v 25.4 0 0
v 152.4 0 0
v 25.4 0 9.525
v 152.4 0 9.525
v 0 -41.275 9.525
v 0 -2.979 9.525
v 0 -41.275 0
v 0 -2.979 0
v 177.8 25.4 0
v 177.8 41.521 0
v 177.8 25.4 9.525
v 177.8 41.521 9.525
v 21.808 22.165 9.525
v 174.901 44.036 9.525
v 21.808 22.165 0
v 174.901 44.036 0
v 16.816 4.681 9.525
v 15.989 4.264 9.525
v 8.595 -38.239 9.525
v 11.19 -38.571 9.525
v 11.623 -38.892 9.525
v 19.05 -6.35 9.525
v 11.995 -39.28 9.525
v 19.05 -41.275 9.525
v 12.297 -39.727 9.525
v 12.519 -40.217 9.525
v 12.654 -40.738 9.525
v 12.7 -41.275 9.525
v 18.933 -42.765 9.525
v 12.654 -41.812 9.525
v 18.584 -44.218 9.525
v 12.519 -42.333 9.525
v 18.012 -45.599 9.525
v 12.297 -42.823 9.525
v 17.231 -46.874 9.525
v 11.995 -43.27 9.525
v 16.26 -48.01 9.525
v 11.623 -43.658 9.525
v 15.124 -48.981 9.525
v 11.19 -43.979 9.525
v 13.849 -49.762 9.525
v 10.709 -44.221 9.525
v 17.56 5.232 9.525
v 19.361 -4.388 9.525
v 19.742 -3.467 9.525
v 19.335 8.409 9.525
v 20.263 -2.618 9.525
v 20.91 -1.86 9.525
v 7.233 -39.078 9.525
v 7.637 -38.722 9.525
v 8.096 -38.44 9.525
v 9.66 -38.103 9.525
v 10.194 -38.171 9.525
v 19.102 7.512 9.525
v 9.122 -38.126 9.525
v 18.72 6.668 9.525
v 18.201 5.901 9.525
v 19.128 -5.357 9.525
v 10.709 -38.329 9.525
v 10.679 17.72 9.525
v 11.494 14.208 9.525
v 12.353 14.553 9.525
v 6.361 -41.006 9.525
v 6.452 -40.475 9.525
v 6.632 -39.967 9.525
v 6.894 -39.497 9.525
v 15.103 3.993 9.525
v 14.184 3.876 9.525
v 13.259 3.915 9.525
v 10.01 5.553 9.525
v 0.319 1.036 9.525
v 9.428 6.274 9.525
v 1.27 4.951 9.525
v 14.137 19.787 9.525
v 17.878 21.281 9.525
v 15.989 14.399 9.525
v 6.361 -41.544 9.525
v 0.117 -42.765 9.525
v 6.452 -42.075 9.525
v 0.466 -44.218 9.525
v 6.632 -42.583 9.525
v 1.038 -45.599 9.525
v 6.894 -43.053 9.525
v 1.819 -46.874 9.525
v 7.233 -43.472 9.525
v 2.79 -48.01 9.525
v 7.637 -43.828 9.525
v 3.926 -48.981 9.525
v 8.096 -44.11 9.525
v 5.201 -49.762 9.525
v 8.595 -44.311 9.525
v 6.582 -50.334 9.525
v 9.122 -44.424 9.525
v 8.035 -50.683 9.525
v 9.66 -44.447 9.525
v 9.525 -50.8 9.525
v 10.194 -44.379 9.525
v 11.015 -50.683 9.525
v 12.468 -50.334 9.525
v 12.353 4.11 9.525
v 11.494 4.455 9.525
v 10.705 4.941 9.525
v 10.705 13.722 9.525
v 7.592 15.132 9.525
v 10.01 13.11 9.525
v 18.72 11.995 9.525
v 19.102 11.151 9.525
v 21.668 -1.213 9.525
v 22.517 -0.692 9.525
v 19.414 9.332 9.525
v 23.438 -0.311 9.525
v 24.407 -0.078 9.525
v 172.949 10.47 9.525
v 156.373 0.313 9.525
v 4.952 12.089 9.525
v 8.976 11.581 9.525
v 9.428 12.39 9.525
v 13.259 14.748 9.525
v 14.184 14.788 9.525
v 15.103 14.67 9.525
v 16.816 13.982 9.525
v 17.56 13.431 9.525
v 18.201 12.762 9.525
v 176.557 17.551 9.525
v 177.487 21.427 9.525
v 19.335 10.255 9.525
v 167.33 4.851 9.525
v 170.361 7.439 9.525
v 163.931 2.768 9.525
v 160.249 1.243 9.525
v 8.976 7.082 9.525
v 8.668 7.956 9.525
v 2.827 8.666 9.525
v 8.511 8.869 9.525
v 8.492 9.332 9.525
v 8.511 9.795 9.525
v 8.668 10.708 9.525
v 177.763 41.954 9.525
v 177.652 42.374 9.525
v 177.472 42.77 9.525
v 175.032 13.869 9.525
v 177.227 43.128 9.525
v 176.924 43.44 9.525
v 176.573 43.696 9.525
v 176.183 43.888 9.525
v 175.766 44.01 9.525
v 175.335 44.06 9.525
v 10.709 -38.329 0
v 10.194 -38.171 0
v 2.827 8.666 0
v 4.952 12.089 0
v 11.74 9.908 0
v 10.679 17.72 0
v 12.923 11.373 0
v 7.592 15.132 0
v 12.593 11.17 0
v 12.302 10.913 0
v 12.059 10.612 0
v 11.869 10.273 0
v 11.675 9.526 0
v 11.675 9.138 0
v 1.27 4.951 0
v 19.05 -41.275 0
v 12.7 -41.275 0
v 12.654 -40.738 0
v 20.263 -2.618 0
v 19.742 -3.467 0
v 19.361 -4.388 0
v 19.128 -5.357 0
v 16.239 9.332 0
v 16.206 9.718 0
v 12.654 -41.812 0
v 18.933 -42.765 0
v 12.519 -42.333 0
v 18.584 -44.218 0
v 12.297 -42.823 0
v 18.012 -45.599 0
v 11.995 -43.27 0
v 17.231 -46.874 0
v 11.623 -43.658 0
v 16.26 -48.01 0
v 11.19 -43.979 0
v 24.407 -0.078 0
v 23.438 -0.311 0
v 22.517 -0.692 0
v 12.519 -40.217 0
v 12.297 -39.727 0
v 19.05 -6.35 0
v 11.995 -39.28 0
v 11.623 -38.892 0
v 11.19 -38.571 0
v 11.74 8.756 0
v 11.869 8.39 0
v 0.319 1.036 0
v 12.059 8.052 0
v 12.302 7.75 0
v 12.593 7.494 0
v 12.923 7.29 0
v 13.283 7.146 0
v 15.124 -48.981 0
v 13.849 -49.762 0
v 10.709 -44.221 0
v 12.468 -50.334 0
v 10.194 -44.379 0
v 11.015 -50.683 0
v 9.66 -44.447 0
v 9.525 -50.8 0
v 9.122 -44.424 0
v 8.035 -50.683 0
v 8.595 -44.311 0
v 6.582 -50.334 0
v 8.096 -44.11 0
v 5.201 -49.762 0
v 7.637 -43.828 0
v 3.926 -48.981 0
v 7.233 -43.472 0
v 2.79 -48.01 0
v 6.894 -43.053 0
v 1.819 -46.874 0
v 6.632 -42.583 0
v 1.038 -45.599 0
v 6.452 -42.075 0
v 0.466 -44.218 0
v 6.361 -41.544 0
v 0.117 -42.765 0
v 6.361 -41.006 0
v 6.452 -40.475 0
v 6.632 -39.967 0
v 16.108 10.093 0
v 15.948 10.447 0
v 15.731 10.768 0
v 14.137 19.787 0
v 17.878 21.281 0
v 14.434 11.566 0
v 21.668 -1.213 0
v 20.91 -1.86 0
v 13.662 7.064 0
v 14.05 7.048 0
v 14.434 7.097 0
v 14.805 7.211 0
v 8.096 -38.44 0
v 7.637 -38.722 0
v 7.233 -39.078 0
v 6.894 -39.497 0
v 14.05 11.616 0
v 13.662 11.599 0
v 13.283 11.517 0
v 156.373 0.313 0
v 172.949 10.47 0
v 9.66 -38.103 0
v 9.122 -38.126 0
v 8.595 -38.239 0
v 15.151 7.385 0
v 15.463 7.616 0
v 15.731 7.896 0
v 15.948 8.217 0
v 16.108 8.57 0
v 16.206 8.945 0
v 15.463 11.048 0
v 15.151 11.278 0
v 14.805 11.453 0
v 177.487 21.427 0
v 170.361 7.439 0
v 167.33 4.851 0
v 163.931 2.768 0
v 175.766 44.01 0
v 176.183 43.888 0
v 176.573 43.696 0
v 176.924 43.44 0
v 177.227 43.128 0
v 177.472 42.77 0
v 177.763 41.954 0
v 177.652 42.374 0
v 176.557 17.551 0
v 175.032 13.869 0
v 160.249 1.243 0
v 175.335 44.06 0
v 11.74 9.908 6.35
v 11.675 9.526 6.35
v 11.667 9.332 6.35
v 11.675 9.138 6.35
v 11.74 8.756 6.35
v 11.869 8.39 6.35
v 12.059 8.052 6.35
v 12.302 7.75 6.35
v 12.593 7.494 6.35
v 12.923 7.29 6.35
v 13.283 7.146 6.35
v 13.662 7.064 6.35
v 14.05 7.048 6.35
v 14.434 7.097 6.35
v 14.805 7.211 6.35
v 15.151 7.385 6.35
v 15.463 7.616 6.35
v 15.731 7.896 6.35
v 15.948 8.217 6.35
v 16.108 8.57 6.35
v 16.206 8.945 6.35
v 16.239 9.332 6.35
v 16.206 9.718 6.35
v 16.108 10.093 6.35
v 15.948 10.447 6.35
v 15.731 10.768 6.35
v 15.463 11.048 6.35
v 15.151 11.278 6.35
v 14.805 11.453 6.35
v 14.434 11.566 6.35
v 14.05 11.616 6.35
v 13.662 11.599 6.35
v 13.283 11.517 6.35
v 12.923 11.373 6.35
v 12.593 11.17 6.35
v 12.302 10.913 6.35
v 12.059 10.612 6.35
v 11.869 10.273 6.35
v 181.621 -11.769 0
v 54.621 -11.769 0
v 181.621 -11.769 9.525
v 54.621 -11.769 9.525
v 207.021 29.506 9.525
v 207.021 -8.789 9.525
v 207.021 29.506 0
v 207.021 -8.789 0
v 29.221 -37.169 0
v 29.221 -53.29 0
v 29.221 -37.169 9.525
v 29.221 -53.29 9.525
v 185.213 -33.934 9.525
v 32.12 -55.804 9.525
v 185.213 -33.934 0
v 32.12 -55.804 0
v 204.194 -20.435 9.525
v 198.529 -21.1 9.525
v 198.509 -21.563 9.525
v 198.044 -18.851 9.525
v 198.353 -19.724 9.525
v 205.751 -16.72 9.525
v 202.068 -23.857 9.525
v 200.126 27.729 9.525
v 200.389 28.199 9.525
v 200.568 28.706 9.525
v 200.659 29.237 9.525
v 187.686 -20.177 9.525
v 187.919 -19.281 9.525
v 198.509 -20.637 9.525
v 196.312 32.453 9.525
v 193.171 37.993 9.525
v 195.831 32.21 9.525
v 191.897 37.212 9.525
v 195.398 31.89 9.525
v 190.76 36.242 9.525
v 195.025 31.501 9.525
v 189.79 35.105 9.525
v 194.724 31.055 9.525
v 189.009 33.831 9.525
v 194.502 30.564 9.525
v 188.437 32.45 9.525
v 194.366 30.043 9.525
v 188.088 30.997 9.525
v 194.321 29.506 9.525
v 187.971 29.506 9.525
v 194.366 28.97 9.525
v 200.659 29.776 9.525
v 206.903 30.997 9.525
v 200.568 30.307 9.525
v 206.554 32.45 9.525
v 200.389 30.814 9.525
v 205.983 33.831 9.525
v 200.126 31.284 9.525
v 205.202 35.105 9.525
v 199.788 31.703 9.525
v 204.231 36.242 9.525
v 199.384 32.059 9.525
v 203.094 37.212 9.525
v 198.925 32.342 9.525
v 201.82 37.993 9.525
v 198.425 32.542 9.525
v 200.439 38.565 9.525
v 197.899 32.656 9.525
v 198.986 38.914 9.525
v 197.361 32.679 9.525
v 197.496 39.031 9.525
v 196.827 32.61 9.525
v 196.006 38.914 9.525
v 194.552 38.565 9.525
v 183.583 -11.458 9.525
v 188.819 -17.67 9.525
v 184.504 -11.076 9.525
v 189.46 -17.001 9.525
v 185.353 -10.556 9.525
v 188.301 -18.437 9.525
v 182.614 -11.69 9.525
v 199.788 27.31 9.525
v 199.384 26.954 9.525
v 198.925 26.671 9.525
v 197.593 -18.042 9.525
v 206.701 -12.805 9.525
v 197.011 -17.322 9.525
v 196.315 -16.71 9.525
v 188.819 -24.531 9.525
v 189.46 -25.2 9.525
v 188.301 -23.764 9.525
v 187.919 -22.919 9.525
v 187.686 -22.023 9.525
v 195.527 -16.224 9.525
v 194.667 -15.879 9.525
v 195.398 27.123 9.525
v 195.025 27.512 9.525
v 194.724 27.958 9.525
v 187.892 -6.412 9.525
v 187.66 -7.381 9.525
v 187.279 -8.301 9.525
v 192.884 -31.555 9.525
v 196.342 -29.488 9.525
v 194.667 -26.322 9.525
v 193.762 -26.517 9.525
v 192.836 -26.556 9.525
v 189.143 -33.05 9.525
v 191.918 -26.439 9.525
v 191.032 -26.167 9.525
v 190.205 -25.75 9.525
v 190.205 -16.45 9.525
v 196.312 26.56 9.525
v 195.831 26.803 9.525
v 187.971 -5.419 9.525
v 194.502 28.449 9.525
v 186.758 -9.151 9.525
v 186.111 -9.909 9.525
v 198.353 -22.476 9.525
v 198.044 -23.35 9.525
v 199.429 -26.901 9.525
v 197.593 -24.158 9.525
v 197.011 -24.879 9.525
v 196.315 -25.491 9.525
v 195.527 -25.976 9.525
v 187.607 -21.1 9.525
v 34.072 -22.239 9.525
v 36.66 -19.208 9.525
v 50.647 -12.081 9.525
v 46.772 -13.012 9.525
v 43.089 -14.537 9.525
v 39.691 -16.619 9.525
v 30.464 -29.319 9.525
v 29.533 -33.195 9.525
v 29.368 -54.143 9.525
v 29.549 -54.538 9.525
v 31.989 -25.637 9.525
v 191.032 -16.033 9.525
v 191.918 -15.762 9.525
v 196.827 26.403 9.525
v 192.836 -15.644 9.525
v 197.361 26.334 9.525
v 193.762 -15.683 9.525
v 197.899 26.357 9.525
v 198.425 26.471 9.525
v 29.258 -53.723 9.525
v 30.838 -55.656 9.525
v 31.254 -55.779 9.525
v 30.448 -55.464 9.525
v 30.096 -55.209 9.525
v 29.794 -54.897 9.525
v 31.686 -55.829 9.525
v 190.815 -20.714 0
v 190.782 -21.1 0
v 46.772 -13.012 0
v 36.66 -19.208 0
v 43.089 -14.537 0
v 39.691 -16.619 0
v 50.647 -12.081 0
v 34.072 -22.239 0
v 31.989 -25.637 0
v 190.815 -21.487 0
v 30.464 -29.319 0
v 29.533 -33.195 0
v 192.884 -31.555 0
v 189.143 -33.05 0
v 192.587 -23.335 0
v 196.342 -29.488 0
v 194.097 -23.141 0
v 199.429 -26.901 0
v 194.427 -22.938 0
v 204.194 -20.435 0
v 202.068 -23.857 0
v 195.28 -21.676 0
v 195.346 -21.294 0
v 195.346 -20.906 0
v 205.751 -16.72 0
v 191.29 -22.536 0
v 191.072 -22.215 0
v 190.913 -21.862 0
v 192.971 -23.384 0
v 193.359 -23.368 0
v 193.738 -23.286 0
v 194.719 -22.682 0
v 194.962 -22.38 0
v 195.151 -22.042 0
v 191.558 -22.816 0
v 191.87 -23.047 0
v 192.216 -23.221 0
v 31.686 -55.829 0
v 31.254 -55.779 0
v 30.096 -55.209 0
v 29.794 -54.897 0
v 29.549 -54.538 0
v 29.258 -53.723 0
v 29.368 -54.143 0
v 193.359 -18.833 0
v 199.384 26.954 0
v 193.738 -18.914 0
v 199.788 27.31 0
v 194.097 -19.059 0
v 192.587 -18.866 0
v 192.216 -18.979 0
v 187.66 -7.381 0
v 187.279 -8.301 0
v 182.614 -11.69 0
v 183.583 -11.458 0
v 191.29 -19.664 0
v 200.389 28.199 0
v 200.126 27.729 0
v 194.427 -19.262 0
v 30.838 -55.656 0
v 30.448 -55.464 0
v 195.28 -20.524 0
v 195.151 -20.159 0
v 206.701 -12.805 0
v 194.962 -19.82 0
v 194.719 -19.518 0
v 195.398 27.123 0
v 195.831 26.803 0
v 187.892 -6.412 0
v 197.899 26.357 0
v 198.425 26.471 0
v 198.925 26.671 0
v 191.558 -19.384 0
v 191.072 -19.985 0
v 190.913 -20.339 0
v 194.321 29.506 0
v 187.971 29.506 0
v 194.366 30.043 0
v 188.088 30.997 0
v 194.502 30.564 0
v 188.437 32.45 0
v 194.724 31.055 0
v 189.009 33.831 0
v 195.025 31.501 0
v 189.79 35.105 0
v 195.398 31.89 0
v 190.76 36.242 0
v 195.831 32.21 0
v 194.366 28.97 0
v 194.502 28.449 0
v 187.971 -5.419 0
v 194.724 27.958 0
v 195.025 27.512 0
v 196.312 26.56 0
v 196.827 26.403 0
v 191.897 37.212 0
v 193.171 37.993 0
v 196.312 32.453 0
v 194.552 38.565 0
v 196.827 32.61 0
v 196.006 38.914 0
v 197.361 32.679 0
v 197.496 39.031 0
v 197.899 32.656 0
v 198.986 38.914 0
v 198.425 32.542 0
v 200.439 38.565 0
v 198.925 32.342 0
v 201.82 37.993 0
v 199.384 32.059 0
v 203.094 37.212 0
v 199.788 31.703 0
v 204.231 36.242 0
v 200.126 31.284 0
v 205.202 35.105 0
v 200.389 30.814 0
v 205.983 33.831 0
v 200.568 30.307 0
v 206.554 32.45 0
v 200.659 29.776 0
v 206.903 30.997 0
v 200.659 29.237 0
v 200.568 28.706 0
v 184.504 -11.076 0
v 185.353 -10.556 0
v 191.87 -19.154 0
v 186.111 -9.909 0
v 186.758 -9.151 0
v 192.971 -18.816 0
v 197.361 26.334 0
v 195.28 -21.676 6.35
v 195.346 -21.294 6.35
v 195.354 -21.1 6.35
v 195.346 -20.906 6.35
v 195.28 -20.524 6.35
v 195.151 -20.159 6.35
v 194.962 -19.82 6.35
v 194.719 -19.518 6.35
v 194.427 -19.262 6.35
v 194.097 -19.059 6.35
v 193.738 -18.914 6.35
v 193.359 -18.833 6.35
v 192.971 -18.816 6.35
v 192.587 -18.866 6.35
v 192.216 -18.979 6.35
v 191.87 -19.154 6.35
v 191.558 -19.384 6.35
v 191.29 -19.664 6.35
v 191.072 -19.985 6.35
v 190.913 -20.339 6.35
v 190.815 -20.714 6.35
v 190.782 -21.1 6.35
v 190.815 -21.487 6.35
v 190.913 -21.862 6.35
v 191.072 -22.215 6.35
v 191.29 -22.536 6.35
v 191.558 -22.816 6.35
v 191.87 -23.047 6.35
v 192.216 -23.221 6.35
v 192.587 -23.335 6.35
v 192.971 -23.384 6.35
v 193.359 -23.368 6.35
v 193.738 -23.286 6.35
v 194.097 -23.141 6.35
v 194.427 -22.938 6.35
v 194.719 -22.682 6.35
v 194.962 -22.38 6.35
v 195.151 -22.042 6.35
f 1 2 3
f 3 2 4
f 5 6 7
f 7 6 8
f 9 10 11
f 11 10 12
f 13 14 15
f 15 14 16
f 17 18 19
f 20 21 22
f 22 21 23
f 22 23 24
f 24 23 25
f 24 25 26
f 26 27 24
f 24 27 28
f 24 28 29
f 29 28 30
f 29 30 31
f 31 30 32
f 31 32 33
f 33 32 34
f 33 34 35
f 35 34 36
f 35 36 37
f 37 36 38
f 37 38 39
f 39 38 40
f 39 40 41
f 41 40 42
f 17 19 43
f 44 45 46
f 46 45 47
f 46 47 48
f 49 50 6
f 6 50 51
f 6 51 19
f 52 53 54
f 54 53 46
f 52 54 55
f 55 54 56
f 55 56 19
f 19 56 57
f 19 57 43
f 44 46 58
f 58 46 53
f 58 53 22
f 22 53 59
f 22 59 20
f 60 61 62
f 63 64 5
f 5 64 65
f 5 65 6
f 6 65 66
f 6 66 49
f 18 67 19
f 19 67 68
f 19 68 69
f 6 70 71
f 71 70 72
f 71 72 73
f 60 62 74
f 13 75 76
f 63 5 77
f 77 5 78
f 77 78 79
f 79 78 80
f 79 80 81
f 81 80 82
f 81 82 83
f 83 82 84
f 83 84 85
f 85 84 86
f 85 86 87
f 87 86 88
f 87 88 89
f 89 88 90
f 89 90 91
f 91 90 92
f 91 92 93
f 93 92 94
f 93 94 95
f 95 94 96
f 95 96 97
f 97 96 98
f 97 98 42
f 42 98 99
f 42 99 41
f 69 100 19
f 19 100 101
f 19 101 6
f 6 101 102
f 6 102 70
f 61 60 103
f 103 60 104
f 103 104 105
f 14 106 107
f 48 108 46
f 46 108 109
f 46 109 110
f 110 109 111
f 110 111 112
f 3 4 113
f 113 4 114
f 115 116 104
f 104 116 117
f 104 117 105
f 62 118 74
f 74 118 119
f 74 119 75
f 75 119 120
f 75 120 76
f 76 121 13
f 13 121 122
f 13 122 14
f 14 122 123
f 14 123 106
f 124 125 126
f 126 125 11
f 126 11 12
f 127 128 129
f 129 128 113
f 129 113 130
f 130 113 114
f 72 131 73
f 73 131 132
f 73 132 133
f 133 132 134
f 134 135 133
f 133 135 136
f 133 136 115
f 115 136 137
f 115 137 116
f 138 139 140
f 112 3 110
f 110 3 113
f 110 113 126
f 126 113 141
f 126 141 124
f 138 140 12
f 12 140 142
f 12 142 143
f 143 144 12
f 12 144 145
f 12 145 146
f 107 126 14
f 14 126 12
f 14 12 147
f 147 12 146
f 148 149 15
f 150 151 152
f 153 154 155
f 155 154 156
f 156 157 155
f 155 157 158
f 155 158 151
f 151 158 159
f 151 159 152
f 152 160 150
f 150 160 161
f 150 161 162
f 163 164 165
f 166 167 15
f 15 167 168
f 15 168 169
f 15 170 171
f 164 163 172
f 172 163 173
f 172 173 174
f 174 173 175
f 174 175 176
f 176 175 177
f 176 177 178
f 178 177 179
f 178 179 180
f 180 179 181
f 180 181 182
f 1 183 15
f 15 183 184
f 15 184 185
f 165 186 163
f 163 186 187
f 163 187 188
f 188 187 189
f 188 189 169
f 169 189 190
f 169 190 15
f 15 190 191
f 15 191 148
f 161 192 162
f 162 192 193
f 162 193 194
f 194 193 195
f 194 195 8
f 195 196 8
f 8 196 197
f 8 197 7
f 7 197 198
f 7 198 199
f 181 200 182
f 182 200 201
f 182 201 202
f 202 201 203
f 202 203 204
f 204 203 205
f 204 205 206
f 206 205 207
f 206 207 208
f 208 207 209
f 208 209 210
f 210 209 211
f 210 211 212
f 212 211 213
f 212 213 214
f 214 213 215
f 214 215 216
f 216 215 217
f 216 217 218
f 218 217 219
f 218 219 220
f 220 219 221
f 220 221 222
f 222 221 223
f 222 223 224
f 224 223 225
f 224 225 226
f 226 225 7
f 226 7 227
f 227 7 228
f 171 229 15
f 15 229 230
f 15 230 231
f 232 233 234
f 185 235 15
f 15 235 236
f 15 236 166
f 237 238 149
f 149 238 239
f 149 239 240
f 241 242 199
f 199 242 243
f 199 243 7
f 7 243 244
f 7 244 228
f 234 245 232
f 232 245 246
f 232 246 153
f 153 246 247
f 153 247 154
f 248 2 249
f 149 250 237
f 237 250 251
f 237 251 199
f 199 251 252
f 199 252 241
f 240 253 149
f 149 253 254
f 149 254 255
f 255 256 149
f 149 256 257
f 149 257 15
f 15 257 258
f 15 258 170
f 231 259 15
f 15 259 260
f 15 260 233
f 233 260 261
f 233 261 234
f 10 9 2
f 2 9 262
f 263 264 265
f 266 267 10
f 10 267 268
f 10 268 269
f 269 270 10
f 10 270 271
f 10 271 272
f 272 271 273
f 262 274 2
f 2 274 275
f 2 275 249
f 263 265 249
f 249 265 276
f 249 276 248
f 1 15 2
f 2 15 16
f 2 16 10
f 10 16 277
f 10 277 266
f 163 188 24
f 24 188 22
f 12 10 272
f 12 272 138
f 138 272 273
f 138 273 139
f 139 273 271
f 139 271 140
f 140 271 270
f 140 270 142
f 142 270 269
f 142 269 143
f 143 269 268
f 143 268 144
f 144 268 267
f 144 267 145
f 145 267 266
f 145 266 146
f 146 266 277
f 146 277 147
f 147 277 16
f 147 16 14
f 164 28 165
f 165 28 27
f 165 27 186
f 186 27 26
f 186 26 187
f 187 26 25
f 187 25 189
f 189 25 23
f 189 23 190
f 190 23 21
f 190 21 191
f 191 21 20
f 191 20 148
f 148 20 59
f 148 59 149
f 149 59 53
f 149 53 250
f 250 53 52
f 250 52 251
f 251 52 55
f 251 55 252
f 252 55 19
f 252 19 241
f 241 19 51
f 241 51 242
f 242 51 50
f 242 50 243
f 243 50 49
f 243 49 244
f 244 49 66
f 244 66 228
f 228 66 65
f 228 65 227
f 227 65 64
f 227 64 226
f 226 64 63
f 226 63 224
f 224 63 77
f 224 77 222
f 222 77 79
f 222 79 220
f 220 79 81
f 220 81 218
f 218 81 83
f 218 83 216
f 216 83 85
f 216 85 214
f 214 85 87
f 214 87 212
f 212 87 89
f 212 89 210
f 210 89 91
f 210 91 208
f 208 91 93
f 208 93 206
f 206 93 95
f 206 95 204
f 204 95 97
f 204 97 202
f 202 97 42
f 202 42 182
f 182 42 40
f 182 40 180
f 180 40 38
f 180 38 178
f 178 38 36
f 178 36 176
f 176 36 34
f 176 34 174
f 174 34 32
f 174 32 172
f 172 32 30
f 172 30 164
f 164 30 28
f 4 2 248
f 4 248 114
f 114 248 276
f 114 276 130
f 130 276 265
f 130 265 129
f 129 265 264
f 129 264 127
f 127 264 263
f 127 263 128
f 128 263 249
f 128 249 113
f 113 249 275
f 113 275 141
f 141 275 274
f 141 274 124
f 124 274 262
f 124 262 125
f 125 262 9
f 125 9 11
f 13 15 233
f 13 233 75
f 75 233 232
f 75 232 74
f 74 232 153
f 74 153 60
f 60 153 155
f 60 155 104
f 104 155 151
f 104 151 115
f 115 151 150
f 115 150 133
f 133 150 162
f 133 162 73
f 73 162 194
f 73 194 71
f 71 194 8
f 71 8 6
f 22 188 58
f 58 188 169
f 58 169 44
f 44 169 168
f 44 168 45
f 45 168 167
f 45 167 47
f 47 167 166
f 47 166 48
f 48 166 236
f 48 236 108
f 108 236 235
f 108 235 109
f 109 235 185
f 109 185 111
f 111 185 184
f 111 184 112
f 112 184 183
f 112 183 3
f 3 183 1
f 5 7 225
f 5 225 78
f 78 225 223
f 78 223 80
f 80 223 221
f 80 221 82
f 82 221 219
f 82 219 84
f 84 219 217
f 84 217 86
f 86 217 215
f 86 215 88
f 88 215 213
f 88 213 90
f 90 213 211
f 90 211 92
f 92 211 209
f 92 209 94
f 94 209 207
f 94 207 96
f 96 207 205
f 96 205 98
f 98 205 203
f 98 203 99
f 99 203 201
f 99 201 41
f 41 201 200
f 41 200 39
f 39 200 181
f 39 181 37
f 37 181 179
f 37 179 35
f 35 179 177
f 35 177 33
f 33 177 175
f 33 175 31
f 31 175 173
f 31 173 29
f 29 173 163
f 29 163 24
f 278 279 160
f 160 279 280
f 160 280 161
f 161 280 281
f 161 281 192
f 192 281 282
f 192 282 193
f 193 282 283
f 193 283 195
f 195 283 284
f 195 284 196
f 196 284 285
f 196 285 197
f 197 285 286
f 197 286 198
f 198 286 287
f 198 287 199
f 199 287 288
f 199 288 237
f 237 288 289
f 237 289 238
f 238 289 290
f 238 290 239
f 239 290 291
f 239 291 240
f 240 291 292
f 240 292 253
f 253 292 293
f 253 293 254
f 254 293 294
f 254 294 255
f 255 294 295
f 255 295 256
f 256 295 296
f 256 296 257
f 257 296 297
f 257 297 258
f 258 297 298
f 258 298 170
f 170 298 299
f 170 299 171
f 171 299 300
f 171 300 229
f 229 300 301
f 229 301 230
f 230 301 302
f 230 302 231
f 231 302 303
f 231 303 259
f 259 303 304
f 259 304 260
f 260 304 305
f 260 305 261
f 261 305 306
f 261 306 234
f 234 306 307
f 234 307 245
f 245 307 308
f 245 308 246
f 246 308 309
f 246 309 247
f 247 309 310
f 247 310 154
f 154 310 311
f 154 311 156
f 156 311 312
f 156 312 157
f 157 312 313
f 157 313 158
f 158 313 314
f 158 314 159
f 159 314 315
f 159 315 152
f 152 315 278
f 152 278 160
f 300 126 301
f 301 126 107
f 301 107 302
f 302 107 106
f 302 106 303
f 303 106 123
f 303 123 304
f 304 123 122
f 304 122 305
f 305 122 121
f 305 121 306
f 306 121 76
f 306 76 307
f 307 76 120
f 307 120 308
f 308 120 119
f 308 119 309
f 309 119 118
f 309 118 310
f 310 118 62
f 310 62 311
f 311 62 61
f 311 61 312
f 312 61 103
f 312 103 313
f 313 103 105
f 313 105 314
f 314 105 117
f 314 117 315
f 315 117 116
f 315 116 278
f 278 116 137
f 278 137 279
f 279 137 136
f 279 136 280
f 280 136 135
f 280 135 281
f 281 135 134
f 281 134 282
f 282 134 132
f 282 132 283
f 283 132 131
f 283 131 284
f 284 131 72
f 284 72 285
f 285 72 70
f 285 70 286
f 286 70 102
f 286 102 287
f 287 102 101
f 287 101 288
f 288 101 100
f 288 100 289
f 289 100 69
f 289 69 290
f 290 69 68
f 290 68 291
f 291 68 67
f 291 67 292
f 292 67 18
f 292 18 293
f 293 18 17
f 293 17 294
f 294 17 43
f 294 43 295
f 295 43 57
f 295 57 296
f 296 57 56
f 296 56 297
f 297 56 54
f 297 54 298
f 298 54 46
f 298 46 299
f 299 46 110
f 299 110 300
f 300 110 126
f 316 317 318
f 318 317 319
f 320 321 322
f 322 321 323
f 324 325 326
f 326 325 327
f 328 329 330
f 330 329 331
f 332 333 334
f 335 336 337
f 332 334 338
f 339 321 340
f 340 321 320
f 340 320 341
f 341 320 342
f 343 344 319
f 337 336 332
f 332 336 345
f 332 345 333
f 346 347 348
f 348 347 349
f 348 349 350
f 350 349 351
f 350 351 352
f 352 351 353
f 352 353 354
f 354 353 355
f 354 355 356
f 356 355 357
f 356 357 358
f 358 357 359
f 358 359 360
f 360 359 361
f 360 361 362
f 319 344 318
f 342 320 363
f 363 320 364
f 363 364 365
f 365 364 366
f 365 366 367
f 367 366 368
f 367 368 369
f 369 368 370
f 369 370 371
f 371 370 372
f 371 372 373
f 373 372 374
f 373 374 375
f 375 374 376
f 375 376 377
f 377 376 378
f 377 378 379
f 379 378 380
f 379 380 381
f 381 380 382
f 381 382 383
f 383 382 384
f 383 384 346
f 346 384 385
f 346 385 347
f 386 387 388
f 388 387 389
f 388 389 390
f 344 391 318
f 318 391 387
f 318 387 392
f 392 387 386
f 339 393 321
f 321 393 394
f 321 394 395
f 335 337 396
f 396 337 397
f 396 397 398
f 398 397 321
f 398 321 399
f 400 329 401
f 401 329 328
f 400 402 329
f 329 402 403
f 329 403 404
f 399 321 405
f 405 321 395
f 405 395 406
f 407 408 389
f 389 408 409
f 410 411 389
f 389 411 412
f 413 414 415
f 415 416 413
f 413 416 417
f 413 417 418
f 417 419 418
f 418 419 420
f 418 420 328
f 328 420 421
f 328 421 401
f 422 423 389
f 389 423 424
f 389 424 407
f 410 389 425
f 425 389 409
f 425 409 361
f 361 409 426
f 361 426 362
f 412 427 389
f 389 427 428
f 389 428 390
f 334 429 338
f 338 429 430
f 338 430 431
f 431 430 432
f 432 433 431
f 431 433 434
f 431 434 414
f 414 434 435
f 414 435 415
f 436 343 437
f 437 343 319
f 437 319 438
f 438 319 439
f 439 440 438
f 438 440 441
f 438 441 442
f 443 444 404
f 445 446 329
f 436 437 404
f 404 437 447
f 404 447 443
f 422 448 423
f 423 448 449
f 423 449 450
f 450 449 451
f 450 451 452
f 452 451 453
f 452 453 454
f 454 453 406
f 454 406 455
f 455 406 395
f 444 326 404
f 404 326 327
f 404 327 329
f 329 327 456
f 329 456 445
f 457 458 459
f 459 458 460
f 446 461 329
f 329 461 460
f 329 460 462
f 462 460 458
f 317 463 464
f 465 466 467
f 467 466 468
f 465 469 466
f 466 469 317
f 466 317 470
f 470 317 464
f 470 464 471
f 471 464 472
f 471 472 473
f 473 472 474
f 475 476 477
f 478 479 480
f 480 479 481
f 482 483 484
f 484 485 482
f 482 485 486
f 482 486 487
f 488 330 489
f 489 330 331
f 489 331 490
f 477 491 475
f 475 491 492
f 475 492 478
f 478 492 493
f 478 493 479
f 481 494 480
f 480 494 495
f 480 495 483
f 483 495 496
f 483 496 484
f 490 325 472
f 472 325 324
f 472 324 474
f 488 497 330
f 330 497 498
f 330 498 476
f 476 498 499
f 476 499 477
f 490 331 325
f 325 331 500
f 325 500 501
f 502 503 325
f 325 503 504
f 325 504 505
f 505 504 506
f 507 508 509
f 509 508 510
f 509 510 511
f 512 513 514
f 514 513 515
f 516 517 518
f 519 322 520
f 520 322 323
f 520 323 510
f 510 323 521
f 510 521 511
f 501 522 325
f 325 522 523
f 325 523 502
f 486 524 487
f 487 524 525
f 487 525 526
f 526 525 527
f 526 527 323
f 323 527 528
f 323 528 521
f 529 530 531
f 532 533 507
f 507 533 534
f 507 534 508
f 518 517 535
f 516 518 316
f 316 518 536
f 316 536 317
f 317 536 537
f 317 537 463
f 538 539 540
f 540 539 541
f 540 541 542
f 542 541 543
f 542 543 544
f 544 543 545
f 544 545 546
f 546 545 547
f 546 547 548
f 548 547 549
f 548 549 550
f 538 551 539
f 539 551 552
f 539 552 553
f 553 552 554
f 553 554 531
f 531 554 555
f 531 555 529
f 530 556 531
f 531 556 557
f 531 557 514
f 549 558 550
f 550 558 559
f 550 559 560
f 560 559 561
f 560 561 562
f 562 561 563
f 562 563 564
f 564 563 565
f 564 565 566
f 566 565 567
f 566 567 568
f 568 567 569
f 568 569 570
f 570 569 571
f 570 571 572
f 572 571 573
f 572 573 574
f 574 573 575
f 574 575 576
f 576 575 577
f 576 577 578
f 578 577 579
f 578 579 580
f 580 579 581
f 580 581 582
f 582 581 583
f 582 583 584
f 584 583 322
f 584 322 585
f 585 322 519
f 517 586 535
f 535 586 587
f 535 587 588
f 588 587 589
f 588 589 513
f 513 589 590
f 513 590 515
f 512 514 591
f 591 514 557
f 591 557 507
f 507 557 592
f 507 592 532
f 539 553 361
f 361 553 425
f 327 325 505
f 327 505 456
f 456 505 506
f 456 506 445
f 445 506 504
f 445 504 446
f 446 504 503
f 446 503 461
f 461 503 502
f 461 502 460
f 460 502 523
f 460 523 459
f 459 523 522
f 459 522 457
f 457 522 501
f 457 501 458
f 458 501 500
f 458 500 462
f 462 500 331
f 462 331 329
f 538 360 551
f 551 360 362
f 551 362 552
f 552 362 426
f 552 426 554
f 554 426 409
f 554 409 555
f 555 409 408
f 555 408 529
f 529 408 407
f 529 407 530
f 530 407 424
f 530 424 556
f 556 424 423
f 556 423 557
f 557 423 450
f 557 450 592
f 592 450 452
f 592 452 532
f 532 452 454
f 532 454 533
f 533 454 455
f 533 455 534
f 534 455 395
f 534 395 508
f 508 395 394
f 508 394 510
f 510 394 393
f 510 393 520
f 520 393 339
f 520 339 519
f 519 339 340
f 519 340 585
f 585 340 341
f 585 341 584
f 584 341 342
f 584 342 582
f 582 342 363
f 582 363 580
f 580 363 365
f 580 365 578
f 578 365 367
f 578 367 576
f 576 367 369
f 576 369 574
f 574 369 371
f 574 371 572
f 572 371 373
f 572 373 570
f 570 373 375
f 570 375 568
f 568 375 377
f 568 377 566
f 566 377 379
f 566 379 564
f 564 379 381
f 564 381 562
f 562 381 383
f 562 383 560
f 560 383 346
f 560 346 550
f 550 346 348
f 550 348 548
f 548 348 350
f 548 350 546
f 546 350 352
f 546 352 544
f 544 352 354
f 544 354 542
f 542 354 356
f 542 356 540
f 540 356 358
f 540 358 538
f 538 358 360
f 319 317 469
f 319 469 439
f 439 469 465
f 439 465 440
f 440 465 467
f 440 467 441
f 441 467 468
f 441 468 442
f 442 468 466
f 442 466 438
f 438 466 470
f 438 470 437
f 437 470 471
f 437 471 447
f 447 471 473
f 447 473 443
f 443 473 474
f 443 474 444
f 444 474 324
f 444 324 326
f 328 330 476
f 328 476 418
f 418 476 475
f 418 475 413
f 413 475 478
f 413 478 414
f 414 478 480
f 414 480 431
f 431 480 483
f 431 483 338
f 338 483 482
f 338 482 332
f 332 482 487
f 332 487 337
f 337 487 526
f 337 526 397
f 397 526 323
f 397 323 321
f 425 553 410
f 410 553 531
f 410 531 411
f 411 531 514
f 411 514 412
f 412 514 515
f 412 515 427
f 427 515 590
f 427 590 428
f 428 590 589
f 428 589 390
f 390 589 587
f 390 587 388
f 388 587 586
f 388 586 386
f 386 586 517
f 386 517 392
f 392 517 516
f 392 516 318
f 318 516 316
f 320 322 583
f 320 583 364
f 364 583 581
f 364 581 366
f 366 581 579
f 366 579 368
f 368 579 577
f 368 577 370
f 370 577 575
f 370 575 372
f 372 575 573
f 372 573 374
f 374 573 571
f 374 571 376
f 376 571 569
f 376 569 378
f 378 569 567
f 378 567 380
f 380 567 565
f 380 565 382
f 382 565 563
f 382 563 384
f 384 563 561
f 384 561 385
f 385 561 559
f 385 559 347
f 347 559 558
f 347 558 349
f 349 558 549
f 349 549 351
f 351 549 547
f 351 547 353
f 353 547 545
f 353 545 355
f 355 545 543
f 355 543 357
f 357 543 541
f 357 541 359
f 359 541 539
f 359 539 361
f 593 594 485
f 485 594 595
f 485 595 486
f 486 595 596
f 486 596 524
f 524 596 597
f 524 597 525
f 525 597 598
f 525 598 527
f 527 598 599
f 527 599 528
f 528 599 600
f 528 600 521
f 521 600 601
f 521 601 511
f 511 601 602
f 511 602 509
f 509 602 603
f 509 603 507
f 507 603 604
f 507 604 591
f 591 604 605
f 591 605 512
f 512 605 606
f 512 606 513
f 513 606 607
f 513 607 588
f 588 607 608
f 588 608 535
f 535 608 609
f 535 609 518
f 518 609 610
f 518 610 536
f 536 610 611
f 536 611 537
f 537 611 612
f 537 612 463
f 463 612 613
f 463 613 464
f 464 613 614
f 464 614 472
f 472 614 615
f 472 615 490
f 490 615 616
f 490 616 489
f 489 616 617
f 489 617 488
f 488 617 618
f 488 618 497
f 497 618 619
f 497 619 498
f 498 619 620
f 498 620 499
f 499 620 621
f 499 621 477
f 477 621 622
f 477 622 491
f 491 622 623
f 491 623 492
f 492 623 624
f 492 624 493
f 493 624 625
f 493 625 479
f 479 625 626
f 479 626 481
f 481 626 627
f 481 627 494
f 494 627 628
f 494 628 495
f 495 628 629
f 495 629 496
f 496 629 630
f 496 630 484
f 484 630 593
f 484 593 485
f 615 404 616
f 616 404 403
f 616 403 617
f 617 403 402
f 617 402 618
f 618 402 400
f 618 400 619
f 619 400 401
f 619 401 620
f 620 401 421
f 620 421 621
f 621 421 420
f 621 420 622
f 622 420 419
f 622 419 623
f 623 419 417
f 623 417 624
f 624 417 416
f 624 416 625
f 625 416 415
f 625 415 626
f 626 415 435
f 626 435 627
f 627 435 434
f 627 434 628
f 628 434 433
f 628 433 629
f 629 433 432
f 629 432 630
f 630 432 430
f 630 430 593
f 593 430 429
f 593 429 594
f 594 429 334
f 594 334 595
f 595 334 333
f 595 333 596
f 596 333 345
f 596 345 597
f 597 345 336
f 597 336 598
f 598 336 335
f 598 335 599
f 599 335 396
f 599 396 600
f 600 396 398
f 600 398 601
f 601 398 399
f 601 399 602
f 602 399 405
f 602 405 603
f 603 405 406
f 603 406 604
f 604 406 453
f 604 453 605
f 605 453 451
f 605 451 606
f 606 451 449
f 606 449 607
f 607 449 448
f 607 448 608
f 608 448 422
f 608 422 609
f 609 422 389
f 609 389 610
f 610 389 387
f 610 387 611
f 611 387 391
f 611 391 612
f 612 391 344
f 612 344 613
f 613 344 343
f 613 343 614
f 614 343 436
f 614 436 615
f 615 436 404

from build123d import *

# Parameters (mm, degrees)
BOSS_EXTRUDE1_DEPTH = 9.525
SKETCH4_W           = 19.05
SKETCH4_H           = 50.8
BOSS_EXTRUDE2_DEPTH = 9.525
FILLET1_R           = 2.54
SKETCH2_R           = 3.175
CUT_EXTRUDE1_DEPTH  = 186.15994606
FILLET2_R           = 25.4
FILLET3_R           = 25.4
FILLET4_R           = 6.35
FILLET5_R           = 9.525
SKETCH6_R           = 2.286
CUT_EXTRUDE3_DEPTH  = 186.15994606
CHAMFER1_SIZE       = 3.175
CIRPATTERN1_COUNT   = 2


with BuildPart() as part:
    # Sketch1 → Boss-Extrude1 (new body)
    with BuildSketch(Plane.XY):
        Polygon((0, 0), (177.8, 0), (177.8, 44.45), (0, 19.05), align=None)
    extrude(amount=BOSS_EXTRUDE1_DEPTH)

    # Sketch4 → Boss-Extrude2 (add)
    with BuildSketch(Plane.XY.offset(9.525)):
        with Locations((9.525, -25.4)):
            Rectangle(SKETCH4_W, SKETCH4_H)
    extrude(amount=-BOSS_EXTRUDE2_DEPTH)

    # Fillet1
    fillet1_edges = [part.edges().sort_by_distance(p)[0] for p in [
        (177.8, 44.45, 4.7625),
    ]]
    fillet(fillet1_edges, radius=FILLET1_R)

    # Sketch2 → Cut-Extrude1 (cut, through all)
    with BuildSketch(Plane.XY.offset(9.525)):
        with Locations((9.525, -41.275)):
            Circle(SKETCH2_R)
    extrude(amount=-CUT_EXTRUDE1_DEPTH, mode=Mode.SUBTRACT)

    # Fillet2
    fillet2_edges = [part.edges().sort_by_distance(p)[0] for p in [
        (177.8, 0, 4.7625),
    ]]
    fillet(fillet2_edges, radius=FILLET2_R)

    # Fillet3
    fillet3_edges = [part.edges().sort_by_distance(p)[0] for p in [
        (0, 19.05, 4.7625),
    ]]
    fillet(fillet3_edges, radius=FILLET3_R)

    # Fillet4
    fillet4_edges = [part.edges().sort_by_distance(p)[0] for p in [
        (19.05, 0, 4.7625),
    ]]
    fillet(fillet4_edges, radius=FILLET4_R)

    # Fillet5
    fillet5_edges = [part.edges().sort_by_distance(p)[0] for p in [
        (19.05, -50.8, 4.7625),
        (0, -50.8, 4.7625),
    ]]
    fillet(fillet5_edges, radius=FILLET5_R - 0.0001)  # a hair under: the kernel refuses the full size

    # Sketch6 → Cut-Extrude3 (cut, through all)
    with BuildSketch(Plane.XY.offset(9.525)):
        with Locations((13.952511732, 9.331690663)):
            Circle(SKETCH6_R)
    extrude(amount=-CUT_EXTRUDE3_DEPTH, mode=Mode.SUBTRACT)

    # Chamfer1
    chamfer1_edges = [part.edges().sort_by_distance(p)[0] for p in [
        (11.666511732, 9.331690663, 9.525),
    ]]
    chamfer(chamfer1_edges, length=CHAMFER1_SIZE)


with BuildPart() as cirpattern1_1:
    # CirPattern1: pattern copy
    add(part.part.rotate(Axis((103.510332135, -5.88426384, 0), (0, 0, 1)), 1 * 360 / CIRPATTERN1_COUNT))


solid = Compound([part.part, cirpattern1_1.part])
